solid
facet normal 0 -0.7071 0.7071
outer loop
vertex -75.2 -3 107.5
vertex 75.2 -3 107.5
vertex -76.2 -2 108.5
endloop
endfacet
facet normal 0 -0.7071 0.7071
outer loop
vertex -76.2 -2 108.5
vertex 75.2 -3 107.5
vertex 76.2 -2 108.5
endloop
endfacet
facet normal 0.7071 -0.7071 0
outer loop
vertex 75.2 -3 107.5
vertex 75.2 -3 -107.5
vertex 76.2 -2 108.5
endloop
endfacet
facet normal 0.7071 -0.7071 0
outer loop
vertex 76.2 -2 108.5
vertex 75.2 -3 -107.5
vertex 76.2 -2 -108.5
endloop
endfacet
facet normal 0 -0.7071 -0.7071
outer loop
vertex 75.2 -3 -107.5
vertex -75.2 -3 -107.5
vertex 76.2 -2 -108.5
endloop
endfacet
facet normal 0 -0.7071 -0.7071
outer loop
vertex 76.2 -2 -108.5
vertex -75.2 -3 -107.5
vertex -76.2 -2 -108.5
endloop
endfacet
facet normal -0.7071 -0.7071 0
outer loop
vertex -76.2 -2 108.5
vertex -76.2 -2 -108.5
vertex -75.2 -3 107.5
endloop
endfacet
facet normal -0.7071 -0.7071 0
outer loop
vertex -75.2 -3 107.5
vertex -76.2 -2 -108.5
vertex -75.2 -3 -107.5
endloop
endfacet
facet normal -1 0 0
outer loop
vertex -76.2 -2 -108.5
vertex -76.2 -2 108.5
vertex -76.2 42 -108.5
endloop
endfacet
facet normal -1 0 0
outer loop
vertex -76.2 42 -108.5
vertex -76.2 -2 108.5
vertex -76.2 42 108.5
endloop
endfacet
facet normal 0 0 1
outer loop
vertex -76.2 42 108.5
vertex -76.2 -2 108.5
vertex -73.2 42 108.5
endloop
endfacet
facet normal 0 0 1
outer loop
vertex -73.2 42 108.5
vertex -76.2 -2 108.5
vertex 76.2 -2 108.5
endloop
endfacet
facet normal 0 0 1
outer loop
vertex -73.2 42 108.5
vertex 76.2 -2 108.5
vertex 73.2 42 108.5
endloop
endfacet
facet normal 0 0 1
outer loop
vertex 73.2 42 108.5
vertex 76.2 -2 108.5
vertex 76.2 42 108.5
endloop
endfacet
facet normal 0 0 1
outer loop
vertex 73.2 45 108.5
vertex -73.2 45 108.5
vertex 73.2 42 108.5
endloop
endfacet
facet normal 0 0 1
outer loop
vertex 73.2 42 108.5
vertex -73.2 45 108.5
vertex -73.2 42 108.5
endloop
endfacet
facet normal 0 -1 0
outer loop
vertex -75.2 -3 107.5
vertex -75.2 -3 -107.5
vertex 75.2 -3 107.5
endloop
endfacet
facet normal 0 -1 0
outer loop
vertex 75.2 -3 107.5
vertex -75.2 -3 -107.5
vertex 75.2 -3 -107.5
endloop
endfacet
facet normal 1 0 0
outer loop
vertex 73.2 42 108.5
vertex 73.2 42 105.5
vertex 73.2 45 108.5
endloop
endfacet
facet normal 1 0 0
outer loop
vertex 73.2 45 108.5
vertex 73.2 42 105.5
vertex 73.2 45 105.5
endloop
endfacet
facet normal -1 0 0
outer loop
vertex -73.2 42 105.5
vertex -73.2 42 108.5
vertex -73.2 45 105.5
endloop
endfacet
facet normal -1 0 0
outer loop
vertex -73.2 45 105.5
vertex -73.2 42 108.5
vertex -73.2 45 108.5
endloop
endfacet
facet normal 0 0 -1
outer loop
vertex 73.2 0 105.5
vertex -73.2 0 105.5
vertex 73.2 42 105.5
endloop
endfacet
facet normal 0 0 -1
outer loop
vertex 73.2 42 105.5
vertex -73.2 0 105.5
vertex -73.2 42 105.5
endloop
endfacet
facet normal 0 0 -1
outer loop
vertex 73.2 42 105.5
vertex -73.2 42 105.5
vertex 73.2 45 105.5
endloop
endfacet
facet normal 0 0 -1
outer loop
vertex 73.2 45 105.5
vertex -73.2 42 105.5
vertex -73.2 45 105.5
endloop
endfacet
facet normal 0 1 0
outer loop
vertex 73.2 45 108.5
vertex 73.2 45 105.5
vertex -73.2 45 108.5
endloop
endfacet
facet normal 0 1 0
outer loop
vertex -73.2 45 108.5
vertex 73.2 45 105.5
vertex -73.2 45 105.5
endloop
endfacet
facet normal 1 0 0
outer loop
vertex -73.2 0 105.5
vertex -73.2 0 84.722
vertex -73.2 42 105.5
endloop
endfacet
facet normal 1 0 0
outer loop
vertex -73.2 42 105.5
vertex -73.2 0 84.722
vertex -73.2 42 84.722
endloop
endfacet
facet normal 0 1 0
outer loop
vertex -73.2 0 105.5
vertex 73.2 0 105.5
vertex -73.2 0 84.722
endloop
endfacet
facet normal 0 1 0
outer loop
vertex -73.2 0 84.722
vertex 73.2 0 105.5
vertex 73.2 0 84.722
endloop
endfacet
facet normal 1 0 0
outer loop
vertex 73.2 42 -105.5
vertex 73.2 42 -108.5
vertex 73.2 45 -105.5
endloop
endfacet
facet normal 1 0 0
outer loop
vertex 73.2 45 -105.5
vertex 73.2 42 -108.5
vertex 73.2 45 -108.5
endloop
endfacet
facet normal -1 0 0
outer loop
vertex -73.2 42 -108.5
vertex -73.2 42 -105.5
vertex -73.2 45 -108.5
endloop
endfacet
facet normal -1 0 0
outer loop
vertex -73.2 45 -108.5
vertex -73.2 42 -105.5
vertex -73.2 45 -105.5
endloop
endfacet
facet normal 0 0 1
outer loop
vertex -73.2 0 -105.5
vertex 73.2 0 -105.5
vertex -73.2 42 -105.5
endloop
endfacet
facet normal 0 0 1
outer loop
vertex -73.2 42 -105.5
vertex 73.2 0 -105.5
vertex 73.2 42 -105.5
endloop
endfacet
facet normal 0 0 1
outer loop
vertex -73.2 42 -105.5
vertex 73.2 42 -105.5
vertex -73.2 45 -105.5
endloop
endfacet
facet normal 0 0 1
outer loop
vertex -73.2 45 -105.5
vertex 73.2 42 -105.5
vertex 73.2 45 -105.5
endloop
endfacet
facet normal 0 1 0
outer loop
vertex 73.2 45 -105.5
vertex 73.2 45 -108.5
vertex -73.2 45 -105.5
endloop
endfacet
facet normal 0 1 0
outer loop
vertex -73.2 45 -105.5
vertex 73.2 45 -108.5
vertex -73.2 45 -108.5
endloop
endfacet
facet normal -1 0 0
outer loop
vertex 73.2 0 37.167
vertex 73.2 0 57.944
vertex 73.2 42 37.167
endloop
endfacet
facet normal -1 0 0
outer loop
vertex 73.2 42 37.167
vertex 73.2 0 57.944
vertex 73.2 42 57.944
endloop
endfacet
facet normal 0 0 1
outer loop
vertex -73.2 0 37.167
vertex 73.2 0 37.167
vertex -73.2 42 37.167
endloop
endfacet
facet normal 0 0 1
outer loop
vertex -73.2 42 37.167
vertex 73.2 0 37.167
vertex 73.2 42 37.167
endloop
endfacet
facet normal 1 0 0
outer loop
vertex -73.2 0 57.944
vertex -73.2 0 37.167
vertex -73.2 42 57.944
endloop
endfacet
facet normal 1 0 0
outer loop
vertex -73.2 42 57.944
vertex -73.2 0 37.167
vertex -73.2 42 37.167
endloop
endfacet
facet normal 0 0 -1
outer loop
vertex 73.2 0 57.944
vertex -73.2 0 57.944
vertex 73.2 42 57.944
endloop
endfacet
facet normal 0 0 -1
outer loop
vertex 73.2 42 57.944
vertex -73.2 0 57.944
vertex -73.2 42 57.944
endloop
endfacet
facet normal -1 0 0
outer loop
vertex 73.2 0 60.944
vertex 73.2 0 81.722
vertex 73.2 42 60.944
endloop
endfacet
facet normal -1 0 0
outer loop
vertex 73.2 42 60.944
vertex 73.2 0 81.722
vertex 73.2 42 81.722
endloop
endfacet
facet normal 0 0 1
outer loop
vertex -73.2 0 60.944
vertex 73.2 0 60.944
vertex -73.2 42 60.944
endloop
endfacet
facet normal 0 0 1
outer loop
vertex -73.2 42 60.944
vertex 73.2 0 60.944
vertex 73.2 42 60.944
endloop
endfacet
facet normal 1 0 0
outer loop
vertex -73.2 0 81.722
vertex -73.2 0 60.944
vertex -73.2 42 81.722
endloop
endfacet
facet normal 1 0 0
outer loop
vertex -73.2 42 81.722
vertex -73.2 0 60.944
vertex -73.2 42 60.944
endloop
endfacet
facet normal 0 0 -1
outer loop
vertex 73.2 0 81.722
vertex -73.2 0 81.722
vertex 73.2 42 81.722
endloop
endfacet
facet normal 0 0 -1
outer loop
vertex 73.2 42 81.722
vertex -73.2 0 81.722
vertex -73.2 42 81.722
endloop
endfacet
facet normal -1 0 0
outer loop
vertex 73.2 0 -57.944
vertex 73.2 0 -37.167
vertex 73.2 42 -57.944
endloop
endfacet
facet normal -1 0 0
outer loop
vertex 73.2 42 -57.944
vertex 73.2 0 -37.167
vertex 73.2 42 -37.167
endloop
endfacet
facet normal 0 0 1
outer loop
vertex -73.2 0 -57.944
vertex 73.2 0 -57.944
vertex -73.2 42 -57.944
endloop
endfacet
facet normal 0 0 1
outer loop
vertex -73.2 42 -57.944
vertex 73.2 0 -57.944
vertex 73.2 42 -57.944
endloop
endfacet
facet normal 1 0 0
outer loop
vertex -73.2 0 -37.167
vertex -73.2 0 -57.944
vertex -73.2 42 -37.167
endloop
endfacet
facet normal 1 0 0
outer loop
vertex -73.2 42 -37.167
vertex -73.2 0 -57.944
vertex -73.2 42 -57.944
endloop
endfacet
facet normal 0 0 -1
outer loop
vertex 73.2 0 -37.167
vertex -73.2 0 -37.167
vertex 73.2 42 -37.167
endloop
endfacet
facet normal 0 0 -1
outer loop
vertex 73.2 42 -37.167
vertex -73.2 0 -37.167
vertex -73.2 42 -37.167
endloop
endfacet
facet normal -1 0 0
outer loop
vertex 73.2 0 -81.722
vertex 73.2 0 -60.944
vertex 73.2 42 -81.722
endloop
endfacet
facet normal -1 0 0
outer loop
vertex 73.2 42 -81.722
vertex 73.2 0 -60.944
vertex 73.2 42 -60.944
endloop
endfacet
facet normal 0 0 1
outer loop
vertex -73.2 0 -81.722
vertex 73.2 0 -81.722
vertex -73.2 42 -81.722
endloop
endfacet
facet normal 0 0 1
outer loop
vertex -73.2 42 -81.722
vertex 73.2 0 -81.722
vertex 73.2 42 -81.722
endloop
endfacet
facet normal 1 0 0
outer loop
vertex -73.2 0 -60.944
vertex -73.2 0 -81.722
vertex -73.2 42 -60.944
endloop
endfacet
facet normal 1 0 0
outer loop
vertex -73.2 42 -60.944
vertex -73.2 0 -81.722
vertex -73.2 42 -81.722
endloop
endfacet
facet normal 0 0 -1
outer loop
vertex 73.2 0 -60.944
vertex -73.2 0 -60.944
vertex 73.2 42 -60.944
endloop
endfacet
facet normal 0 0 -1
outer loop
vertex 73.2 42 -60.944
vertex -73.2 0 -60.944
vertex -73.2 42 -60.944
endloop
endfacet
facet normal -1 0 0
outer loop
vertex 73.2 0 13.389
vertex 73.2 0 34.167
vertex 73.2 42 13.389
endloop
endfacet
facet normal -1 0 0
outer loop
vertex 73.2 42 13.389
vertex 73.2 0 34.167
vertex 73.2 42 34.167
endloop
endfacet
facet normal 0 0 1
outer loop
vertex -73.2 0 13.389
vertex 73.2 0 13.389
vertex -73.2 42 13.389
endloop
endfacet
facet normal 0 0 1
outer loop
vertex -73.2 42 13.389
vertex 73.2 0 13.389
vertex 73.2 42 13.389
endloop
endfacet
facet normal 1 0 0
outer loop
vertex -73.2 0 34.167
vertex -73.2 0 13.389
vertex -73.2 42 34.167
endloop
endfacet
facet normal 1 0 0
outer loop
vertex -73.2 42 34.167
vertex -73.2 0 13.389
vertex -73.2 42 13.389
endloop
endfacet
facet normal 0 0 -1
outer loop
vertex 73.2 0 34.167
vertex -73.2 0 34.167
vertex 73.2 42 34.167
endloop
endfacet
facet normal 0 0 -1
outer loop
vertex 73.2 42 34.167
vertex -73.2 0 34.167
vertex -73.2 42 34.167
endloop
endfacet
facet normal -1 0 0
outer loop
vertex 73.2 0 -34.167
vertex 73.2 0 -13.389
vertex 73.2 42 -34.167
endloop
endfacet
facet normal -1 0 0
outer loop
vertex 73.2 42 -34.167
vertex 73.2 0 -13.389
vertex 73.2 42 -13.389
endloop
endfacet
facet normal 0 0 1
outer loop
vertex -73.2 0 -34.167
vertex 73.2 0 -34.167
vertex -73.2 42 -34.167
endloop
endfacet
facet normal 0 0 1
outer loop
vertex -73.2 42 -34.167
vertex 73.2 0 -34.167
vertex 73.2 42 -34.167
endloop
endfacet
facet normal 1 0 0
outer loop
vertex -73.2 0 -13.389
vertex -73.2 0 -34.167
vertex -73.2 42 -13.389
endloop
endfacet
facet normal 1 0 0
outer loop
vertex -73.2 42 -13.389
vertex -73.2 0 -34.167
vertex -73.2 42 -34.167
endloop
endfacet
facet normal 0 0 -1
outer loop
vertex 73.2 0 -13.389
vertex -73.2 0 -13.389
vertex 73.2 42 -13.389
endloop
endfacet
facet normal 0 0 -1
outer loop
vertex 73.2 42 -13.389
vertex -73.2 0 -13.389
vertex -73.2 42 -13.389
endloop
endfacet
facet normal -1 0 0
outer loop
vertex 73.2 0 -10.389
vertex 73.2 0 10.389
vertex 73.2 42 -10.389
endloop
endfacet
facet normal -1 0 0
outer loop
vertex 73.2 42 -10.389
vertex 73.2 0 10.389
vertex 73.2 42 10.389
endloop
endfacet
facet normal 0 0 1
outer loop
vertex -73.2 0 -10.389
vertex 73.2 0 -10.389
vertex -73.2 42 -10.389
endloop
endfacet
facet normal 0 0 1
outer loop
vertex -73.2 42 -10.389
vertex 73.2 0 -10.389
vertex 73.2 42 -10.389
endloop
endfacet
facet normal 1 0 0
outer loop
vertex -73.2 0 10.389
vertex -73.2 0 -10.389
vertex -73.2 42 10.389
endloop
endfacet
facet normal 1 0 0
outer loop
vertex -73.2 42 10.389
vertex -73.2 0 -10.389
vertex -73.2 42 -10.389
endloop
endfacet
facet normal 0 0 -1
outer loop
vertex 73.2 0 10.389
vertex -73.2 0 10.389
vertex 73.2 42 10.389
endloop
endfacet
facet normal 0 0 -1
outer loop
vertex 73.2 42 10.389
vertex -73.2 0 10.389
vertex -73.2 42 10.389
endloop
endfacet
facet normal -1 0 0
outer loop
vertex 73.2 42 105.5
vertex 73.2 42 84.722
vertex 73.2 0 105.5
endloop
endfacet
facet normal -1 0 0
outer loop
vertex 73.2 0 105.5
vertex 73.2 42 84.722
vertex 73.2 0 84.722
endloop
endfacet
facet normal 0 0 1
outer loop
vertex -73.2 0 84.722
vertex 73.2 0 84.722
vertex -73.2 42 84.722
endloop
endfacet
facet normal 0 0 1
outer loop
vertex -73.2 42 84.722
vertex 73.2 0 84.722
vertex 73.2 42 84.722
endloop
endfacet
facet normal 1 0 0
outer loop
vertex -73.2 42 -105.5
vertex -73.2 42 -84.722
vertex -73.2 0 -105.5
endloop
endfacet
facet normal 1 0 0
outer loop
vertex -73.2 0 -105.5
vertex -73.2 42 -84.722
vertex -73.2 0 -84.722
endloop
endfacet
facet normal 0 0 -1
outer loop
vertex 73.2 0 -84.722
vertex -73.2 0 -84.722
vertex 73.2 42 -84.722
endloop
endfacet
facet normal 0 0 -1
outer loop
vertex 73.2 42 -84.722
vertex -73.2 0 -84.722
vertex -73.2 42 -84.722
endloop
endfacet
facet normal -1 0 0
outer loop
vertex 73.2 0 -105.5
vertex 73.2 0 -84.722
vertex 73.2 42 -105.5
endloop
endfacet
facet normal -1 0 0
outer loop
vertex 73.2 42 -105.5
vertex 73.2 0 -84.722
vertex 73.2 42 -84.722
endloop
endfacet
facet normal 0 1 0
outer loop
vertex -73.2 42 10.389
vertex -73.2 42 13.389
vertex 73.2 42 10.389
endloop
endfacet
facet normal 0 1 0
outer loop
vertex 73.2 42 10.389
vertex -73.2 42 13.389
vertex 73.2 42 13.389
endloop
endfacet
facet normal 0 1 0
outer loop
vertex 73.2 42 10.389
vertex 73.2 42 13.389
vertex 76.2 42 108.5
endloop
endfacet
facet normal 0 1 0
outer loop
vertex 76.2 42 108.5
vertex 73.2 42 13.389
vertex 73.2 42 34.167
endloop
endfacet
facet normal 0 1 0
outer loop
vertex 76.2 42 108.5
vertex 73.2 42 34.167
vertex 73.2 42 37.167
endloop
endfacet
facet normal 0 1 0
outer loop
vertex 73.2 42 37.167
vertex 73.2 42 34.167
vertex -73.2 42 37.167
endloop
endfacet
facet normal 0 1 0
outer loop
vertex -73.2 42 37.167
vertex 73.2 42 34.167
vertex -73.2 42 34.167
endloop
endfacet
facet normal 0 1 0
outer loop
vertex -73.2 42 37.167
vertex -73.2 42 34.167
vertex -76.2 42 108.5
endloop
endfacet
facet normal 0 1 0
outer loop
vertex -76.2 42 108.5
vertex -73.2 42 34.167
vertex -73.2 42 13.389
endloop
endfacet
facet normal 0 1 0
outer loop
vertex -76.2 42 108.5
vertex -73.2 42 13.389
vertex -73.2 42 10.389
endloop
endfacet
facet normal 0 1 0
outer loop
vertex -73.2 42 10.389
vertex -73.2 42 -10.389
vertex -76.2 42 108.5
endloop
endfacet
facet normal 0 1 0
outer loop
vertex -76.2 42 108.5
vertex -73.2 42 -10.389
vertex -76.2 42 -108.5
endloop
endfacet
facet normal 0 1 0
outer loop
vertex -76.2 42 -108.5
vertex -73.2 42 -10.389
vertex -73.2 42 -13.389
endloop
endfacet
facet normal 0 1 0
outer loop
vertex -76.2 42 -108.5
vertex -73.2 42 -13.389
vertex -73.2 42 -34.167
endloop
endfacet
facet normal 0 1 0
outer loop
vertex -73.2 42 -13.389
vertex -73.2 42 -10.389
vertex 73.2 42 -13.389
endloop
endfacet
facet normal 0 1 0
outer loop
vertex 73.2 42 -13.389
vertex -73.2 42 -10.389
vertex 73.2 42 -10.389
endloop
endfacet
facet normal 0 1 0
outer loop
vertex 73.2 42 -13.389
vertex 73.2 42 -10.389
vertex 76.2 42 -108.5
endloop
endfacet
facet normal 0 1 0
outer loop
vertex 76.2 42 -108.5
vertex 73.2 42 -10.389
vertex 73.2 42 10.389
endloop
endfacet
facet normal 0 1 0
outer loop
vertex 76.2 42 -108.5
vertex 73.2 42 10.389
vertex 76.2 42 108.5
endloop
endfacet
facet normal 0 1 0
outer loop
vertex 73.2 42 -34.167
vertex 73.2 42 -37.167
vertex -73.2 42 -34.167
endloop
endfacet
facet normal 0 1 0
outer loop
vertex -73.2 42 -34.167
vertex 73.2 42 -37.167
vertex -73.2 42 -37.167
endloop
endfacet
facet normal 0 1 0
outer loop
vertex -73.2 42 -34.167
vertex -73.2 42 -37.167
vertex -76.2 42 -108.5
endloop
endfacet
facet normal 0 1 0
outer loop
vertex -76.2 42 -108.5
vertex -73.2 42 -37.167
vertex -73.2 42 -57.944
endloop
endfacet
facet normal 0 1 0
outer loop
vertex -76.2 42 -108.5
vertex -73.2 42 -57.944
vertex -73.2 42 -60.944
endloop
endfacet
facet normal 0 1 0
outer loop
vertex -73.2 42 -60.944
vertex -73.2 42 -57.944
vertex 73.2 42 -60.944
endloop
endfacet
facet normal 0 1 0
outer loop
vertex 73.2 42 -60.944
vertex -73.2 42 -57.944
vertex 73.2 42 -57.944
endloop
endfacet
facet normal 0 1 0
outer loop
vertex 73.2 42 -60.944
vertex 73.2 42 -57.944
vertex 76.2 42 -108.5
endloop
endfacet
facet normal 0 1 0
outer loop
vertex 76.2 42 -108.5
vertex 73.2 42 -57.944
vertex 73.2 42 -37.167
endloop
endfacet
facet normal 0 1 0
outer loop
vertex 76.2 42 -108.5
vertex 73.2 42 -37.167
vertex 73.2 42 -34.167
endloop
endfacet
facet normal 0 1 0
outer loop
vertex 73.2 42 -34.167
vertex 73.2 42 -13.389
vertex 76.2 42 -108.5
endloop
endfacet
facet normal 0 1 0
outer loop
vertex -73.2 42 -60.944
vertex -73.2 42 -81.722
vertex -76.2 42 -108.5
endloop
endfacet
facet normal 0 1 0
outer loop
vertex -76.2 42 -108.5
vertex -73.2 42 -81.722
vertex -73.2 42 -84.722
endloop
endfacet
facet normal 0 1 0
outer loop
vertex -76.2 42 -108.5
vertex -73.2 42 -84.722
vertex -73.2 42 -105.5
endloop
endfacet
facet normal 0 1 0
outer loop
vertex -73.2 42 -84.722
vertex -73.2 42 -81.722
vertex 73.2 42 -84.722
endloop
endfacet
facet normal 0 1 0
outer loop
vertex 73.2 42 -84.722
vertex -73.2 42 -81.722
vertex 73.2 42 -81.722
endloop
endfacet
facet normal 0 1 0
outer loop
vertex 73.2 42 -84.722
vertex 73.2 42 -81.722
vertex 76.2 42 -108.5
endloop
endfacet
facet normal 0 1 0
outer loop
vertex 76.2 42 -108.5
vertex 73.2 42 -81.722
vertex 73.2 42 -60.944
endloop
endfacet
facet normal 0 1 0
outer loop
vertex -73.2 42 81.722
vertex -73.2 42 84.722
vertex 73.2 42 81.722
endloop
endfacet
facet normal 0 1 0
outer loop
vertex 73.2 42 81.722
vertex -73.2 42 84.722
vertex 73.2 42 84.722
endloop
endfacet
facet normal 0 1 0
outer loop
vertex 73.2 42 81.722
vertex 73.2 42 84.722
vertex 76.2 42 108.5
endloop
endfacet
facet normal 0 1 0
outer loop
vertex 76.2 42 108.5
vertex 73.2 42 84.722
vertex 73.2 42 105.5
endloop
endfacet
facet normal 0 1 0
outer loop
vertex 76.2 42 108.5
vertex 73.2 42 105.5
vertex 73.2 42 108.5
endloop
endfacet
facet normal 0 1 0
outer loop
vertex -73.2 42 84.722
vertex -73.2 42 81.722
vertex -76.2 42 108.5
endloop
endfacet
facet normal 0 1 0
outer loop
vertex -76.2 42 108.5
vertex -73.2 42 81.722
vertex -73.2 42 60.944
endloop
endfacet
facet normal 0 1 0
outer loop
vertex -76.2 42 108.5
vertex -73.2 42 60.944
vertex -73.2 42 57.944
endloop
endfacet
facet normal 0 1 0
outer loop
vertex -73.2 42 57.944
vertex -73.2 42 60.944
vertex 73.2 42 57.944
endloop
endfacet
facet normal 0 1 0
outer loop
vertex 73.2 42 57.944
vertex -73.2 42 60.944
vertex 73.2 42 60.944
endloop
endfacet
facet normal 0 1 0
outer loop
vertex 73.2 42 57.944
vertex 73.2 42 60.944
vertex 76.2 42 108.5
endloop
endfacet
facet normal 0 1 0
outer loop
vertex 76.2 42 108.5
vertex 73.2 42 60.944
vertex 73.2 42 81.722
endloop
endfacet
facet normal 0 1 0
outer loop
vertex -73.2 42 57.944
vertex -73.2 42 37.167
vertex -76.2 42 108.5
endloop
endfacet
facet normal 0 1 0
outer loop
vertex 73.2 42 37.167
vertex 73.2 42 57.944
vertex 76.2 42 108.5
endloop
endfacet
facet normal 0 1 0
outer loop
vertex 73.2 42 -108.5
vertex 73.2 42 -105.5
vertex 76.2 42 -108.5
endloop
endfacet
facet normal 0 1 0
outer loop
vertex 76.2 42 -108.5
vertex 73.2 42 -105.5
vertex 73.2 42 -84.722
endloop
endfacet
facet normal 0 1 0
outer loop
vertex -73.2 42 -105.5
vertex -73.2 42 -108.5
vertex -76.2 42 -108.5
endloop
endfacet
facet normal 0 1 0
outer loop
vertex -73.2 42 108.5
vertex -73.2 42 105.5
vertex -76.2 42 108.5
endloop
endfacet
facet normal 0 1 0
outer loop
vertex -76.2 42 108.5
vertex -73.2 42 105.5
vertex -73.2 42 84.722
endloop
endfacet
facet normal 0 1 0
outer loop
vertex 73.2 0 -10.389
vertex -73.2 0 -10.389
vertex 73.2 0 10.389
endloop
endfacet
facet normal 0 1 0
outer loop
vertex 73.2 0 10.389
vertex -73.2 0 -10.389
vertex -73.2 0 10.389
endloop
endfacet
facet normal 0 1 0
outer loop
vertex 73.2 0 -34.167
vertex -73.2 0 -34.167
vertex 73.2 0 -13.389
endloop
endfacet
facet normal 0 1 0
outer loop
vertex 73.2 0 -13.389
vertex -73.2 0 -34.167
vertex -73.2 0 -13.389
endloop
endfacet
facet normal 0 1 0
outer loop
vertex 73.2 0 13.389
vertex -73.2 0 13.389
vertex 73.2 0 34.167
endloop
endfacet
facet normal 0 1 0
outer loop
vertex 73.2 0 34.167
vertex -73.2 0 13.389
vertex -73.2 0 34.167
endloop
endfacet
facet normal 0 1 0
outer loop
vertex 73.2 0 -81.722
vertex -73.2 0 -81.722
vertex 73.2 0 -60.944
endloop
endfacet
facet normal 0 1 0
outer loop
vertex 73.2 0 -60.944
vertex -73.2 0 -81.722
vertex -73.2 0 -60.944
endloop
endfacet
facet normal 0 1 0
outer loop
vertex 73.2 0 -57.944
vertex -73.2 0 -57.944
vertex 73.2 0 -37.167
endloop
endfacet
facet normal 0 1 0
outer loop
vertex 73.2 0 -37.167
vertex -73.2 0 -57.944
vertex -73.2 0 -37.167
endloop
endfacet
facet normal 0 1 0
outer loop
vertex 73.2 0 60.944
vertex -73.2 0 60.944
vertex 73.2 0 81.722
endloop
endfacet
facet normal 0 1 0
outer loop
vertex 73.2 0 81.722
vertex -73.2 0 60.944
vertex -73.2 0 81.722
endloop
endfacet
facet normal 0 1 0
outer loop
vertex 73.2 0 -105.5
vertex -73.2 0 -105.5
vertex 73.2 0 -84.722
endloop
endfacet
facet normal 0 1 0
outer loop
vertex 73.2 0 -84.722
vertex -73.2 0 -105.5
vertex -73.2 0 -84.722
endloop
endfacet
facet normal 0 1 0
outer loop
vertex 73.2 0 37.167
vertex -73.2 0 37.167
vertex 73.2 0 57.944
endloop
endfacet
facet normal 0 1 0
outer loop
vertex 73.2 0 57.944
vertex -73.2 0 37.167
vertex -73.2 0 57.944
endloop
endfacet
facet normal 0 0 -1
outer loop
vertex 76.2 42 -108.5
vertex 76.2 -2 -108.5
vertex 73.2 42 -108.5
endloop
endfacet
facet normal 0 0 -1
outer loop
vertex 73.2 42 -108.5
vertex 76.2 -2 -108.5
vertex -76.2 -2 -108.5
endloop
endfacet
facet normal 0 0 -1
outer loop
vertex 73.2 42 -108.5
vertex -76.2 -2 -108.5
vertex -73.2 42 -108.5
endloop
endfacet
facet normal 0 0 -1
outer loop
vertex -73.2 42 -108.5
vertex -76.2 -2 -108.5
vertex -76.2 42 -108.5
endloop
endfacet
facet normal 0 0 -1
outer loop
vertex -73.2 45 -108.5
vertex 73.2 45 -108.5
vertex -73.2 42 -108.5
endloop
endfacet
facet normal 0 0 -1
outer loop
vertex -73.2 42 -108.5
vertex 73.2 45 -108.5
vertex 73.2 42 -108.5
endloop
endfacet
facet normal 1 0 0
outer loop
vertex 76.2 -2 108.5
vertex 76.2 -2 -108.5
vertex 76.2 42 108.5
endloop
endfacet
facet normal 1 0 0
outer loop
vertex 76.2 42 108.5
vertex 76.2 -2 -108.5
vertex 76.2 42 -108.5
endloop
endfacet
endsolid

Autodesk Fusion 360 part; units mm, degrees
sketch "Sketch2" plane through (0, 0, 0) normal (0, 1, 0) x (1, 0, 0)
  line L0 (76.2, 108.5) -> (-76.2, 108.5)
  line L1 (-76.2, 108.5) -> (-76.2, -108.5)
  line L2 (-76.2, -108.5) -> (76.2, -108.5)
  line L3 (76.2, -108.5) -> (76.2, 108.5)
  line L4 (76.2, 108.5) -> (-76.2, -108.5) construction
  line L5 (-76.2, 108.5) -> (76.2, -108.5) construction
  dimension "d14" = 152.4
  dimension "d15" = 217
extrude "Extrude1" add sketch "Sketch2" against normal blind 3
sketch "Sketch1" plane through (0, 0, 0) normal (0, 1, 0) x (1, 0, 0)
  line L0 (-73.2, -108.5) -> (-76.2, -108.5)
  line L1 (-76.2, -108.5) -> (-76.2, 108.5)
  line L2 (-76.2, 108.5) -> (-73.2, 108.5)
  line L3 (-73.2, 108.5) -> (-73.2, -108.5)
  line L4 (-73.2, -108.5) -> (-76.2, 108.5) construction
  line L5 (-76.2, -108.5) -> (-73.2, 108.5) construction
  line L6 (0, 0) -> (195.5563, 0) construction
  line L7 (73.2, 108.5) -> (76.2, 108.5)
  line L8 (76.2, 108.5) -> (76.2, -108.5)
  line L9 (76.2, -108.5) -> (73.2, -108.5)
  line L10 (73.2, -108.5) -> (73.2, 108.5)
  line L11 (-73.2, 108.5) -> (73.2, 108.5)
  line L12 (73.2, 108.5) -> (73.2, 105.5)
  line L13 (73.2, 105.5) -> (-73.2, 105.5)
  line L14 (-73.2, 105.5) -> (-73.2, 108.5)
  line L15 (73.2, 81.7222) -> (-73.2, 81.7222)
  line L16 (-73.2, 84.7222) -> (73.2, 84.7222)
  line L17 (73.2, 57.9444) -> (-73.2, 57.9444)
  line L18 (-73.2, 60.9444) -> (73.2, 60.9444)
  line L19 (73.2, 34.1667) -> (-73.2, 34.1667)
  line L20 (-73.2, 37.1667) -> (73.2, 37.1667)
  line L21 (73.2, 10.3889) -> (-73.2, 10.3889)
  line L22 (-73.2, 13.3889) -> (73.2, 13.3889)
  line L23 (73.2, -13.3889) -> (-73.2, -13.3889)
  line L24 (-73.2, -10.3889) -> (73.2, -10.3889)
  line L25 (73.2, -37.1667) -> (-73.2, -37.1667)
  line L26 (-73.2, -34.1667) -> (73.2, -34.1667)
  line L27 (73.2, -60.9444) -> (-73.2, -60.9444)
  line L28 (-73.2, -57.9444) -> (73.2, -57.9444)
  line L29 (73.2, -84.7222) -> (-73.2, -84.7222)
  line L30 (-73.2, -81.7222) -> (73.2, -81.7222)
  line L31 (73.2, -108.5) -> (-73.2, -108.5)
  line L32 (-73.2, -105.5) -> (73.2, -105.5)
  point P0 (-74.7, 0)
  dimension "d1" = 217
  dimension "d6" = 3
  dimension "d8" = 152.4
  dimension "d9" = 3
  dimension "d12" = 0
  dimension "d21" = 76.2
extrude "Extrude2" add sketch "Sketch1" along normal blind 42 contours L0 L1 L2 L3 L14 | L7 L8 L9 L10 L12 | L3 L10 L29 L30 | L3 L10 L27 L28 | L3 L10 L15 L16 | L3 L10 L25 L26 | L3 L10 L17 L18 | L3 L10 L23 L24 | L3 L10 L19 L20 | L3 L10 L21 L22
extrude "Extrude3" add sketch "Sketch1" along normal blind 45 contours L3 L10 L31 L32 | L3 L10 L11 L12 L13 L14
chamfer "Chamfer1" distance 1 angle 45 4 edges at (0, -3, -108.5) (-76.2, -3, 0) (76.2, -3, 0) (0, -3, 108.5) measured on face at (-25.4, -3, -36.1667) measured on face at (-25.4, -3, -36.1667) measured on face at (-25.4, -3, -36.1667) measured on face at (-25.4, -3, -36.1667)
equation "d1 = Length"
equation "Length = 217 mm"
equation "Width = 6 in"
equation "Wall_Thickness = 3 mm"
equation "Number_of_Ribs = 10"
equation "d6 = Wall_Thickness"
equation "d8 = Width"
equation "d9 = Wall_Thickness"
equation "d13 = -( Length - Wall_Thickness )"
equation "d14 = Width"
equation "d15 = Length"
equation "Height = 45 mm"
equation "d19 = Height - Wall_Thickness"
equation "d21 = Width / 2"
equation "BaseWallThickness_1 = 3 mm"
equation "BearingHolderHeight_1 = 20 mm"
equation "BearingHolderDistance_1 = 80 mm"
equation "BearingHolderDiameter_1 = 7.8 mm"
equation "BaseInsideWidth_1 = 70 mm"
equation "BaseLength_1 = 190 mm"
equation "BaseWallHeight_1 = 100 mm"
equation "d22 = Height"
equation "BaseWallThickness_2 = 3 mm"
equation "BearingHolderHeight_2 = 20 mm"
equation "BearingHolderDistance_2 = 80 mm"
equation "BearingHolderDiameter_2 = 7.8 mm"
equation "BaseInsideWidth_2 = 70 mm"
equation "BaseLength_2 = 190 mm"
equation "BaseWallHeight_2 = 100 mm"
